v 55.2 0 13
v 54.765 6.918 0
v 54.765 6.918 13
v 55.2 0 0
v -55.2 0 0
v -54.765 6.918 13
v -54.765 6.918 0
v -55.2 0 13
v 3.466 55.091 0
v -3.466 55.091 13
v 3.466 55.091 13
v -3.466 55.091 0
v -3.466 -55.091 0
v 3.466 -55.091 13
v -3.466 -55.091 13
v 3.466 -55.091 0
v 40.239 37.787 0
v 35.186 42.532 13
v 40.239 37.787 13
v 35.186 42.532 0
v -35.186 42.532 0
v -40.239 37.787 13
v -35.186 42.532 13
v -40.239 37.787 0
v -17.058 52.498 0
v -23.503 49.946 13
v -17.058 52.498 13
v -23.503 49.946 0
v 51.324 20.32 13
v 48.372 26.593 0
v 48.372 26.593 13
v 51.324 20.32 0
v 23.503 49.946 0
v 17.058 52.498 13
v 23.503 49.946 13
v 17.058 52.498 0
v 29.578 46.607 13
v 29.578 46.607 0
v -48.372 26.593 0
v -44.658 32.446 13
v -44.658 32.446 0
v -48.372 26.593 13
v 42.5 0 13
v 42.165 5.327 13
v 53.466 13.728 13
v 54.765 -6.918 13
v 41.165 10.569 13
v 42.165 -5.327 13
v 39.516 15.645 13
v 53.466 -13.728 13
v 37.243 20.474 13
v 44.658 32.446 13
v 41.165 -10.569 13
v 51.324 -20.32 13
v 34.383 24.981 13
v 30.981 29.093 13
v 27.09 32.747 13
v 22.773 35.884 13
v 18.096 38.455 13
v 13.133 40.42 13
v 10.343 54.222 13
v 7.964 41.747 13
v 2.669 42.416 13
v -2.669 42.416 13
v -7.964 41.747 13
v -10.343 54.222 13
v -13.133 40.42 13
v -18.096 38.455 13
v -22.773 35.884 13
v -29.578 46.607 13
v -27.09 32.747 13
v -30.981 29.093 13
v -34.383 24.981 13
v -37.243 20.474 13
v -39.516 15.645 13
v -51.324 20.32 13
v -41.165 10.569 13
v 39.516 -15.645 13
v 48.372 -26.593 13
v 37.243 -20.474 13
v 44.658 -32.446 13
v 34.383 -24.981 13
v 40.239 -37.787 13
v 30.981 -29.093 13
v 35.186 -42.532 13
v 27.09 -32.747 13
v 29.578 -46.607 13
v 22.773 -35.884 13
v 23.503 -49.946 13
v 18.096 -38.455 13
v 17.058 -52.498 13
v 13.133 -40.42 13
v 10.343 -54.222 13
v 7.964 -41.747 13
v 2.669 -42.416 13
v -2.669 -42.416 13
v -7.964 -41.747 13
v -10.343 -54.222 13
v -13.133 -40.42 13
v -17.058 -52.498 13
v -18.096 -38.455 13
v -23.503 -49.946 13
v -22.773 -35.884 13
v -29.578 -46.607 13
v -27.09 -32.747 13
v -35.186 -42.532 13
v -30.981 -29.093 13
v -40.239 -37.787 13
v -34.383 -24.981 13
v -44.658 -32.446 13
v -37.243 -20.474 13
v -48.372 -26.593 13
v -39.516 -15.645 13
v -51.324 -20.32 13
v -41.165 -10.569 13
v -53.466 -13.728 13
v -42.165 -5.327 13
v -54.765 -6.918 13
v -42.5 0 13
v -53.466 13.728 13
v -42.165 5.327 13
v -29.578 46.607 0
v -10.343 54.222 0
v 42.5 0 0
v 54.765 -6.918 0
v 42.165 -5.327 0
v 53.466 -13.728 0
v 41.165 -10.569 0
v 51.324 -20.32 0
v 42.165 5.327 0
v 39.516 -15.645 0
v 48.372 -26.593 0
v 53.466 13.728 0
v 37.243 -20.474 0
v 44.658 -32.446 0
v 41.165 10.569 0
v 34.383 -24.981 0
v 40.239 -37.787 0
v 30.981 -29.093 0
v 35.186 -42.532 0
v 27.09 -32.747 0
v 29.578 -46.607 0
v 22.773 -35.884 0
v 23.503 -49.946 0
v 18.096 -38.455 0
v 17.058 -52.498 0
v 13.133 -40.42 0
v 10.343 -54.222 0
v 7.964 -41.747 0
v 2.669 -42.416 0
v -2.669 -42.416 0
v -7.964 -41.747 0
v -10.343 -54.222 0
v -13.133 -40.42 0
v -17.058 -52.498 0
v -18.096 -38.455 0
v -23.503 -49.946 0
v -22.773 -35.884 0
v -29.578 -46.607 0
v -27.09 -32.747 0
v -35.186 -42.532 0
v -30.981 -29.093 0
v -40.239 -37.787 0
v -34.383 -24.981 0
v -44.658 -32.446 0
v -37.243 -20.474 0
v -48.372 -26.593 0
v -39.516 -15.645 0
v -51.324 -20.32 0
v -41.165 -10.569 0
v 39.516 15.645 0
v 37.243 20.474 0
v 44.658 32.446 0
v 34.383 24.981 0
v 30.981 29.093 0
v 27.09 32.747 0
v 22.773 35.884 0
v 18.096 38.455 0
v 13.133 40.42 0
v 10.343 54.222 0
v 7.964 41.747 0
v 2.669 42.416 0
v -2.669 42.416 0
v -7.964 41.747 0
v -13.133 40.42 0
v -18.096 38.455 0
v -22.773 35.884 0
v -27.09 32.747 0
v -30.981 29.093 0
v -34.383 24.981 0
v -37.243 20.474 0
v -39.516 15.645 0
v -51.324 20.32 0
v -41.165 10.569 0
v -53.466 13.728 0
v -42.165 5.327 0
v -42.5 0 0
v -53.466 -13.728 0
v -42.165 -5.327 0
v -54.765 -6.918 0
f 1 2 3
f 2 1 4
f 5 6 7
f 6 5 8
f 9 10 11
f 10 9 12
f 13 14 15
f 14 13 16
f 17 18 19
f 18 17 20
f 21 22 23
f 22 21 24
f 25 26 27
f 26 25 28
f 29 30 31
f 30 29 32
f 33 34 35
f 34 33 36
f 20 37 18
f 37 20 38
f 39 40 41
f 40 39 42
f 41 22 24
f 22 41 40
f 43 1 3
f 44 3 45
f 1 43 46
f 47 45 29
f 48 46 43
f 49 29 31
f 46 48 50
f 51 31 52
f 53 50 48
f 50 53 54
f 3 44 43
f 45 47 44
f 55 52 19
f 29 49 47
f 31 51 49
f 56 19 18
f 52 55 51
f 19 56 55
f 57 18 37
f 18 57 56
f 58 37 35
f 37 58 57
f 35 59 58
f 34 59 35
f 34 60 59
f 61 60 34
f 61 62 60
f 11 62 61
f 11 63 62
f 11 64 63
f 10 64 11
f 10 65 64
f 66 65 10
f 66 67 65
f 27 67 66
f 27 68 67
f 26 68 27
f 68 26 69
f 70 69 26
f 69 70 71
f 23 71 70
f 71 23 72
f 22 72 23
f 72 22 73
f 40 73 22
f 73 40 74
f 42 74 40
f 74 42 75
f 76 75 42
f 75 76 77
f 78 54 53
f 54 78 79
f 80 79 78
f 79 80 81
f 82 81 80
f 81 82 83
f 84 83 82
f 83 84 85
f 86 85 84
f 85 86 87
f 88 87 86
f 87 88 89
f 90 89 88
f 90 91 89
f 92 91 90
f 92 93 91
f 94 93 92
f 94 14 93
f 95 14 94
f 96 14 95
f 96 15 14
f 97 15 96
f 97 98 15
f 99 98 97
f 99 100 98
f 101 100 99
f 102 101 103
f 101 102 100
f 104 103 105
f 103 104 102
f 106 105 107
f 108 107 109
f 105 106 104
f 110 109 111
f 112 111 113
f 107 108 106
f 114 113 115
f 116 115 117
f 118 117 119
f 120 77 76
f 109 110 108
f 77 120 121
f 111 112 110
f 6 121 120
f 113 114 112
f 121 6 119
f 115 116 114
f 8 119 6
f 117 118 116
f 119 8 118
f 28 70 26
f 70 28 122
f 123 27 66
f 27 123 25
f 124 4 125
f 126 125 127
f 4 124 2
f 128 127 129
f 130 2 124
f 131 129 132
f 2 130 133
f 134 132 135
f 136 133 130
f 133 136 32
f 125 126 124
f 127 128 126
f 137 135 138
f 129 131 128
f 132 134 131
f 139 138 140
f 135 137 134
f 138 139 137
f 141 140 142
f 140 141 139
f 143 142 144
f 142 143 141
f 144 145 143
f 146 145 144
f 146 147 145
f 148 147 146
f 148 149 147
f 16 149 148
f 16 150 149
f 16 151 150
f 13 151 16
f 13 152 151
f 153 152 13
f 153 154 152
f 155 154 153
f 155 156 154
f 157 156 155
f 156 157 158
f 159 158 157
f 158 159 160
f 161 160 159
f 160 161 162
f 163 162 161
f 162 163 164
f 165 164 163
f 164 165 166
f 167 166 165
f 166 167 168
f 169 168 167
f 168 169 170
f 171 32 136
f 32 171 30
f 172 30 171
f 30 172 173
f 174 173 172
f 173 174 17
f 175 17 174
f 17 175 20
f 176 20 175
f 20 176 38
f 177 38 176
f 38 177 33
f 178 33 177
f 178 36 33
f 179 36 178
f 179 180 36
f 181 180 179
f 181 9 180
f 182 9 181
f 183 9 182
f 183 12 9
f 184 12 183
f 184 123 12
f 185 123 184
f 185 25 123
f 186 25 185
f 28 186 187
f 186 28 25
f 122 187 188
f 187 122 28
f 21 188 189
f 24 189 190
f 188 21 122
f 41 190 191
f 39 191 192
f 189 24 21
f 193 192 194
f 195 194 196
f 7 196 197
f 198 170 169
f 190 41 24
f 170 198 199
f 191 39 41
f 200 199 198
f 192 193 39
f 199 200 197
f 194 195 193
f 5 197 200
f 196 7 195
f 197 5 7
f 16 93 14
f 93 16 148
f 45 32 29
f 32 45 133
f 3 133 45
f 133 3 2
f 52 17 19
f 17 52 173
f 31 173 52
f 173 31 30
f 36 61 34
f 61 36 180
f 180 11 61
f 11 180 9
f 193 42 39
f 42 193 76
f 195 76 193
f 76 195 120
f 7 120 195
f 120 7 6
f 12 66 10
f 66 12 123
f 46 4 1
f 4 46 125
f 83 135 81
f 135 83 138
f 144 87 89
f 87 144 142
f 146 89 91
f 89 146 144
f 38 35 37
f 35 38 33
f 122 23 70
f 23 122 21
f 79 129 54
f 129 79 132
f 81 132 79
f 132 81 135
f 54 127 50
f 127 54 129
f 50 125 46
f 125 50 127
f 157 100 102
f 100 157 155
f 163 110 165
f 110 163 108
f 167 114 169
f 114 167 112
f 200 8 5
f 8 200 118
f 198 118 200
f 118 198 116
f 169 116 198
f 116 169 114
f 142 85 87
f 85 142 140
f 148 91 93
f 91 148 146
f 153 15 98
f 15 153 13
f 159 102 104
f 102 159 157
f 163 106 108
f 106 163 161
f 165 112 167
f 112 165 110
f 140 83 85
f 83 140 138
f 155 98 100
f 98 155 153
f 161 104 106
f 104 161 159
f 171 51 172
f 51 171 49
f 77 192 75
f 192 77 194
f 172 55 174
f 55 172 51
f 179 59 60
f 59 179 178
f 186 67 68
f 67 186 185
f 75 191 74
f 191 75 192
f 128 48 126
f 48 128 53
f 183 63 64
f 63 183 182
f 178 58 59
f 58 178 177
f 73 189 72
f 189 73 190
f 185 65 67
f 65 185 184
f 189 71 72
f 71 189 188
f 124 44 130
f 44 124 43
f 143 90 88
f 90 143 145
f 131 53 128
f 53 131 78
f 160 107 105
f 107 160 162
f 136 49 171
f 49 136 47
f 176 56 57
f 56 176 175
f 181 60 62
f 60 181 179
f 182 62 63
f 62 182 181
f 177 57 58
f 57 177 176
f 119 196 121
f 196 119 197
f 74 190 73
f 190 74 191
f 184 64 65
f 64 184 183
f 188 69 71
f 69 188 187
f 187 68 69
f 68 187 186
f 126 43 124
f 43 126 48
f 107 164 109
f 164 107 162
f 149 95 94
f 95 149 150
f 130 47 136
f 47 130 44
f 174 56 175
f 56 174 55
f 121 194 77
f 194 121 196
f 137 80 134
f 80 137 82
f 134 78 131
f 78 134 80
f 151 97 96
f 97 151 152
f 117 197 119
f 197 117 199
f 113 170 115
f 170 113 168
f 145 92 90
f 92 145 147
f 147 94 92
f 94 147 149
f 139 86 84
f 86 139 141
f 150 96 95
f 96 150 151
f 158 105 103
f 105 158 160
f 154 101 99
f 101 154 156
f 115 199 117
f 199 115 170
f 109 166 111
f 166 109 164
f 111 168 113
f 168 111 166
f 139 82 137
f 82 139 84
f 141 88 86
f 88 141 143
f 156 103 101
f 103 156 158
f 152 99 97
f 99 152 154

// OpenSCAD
$fn = 50;


difference() {
	union() {
		translate(v = [0, 0, 0]) {
			rotate(a = [0, 0, 0]) {
				cylinder(h = 13, r = 55.2000000000);
			}
		}
	}
	union() {
		translate(v = [0, 0, 0]) {
			rotate(a = [0, 0, 0]) {
				cylinder(h = 13, r = 42.5000000000);
			}
		}
	}
}
